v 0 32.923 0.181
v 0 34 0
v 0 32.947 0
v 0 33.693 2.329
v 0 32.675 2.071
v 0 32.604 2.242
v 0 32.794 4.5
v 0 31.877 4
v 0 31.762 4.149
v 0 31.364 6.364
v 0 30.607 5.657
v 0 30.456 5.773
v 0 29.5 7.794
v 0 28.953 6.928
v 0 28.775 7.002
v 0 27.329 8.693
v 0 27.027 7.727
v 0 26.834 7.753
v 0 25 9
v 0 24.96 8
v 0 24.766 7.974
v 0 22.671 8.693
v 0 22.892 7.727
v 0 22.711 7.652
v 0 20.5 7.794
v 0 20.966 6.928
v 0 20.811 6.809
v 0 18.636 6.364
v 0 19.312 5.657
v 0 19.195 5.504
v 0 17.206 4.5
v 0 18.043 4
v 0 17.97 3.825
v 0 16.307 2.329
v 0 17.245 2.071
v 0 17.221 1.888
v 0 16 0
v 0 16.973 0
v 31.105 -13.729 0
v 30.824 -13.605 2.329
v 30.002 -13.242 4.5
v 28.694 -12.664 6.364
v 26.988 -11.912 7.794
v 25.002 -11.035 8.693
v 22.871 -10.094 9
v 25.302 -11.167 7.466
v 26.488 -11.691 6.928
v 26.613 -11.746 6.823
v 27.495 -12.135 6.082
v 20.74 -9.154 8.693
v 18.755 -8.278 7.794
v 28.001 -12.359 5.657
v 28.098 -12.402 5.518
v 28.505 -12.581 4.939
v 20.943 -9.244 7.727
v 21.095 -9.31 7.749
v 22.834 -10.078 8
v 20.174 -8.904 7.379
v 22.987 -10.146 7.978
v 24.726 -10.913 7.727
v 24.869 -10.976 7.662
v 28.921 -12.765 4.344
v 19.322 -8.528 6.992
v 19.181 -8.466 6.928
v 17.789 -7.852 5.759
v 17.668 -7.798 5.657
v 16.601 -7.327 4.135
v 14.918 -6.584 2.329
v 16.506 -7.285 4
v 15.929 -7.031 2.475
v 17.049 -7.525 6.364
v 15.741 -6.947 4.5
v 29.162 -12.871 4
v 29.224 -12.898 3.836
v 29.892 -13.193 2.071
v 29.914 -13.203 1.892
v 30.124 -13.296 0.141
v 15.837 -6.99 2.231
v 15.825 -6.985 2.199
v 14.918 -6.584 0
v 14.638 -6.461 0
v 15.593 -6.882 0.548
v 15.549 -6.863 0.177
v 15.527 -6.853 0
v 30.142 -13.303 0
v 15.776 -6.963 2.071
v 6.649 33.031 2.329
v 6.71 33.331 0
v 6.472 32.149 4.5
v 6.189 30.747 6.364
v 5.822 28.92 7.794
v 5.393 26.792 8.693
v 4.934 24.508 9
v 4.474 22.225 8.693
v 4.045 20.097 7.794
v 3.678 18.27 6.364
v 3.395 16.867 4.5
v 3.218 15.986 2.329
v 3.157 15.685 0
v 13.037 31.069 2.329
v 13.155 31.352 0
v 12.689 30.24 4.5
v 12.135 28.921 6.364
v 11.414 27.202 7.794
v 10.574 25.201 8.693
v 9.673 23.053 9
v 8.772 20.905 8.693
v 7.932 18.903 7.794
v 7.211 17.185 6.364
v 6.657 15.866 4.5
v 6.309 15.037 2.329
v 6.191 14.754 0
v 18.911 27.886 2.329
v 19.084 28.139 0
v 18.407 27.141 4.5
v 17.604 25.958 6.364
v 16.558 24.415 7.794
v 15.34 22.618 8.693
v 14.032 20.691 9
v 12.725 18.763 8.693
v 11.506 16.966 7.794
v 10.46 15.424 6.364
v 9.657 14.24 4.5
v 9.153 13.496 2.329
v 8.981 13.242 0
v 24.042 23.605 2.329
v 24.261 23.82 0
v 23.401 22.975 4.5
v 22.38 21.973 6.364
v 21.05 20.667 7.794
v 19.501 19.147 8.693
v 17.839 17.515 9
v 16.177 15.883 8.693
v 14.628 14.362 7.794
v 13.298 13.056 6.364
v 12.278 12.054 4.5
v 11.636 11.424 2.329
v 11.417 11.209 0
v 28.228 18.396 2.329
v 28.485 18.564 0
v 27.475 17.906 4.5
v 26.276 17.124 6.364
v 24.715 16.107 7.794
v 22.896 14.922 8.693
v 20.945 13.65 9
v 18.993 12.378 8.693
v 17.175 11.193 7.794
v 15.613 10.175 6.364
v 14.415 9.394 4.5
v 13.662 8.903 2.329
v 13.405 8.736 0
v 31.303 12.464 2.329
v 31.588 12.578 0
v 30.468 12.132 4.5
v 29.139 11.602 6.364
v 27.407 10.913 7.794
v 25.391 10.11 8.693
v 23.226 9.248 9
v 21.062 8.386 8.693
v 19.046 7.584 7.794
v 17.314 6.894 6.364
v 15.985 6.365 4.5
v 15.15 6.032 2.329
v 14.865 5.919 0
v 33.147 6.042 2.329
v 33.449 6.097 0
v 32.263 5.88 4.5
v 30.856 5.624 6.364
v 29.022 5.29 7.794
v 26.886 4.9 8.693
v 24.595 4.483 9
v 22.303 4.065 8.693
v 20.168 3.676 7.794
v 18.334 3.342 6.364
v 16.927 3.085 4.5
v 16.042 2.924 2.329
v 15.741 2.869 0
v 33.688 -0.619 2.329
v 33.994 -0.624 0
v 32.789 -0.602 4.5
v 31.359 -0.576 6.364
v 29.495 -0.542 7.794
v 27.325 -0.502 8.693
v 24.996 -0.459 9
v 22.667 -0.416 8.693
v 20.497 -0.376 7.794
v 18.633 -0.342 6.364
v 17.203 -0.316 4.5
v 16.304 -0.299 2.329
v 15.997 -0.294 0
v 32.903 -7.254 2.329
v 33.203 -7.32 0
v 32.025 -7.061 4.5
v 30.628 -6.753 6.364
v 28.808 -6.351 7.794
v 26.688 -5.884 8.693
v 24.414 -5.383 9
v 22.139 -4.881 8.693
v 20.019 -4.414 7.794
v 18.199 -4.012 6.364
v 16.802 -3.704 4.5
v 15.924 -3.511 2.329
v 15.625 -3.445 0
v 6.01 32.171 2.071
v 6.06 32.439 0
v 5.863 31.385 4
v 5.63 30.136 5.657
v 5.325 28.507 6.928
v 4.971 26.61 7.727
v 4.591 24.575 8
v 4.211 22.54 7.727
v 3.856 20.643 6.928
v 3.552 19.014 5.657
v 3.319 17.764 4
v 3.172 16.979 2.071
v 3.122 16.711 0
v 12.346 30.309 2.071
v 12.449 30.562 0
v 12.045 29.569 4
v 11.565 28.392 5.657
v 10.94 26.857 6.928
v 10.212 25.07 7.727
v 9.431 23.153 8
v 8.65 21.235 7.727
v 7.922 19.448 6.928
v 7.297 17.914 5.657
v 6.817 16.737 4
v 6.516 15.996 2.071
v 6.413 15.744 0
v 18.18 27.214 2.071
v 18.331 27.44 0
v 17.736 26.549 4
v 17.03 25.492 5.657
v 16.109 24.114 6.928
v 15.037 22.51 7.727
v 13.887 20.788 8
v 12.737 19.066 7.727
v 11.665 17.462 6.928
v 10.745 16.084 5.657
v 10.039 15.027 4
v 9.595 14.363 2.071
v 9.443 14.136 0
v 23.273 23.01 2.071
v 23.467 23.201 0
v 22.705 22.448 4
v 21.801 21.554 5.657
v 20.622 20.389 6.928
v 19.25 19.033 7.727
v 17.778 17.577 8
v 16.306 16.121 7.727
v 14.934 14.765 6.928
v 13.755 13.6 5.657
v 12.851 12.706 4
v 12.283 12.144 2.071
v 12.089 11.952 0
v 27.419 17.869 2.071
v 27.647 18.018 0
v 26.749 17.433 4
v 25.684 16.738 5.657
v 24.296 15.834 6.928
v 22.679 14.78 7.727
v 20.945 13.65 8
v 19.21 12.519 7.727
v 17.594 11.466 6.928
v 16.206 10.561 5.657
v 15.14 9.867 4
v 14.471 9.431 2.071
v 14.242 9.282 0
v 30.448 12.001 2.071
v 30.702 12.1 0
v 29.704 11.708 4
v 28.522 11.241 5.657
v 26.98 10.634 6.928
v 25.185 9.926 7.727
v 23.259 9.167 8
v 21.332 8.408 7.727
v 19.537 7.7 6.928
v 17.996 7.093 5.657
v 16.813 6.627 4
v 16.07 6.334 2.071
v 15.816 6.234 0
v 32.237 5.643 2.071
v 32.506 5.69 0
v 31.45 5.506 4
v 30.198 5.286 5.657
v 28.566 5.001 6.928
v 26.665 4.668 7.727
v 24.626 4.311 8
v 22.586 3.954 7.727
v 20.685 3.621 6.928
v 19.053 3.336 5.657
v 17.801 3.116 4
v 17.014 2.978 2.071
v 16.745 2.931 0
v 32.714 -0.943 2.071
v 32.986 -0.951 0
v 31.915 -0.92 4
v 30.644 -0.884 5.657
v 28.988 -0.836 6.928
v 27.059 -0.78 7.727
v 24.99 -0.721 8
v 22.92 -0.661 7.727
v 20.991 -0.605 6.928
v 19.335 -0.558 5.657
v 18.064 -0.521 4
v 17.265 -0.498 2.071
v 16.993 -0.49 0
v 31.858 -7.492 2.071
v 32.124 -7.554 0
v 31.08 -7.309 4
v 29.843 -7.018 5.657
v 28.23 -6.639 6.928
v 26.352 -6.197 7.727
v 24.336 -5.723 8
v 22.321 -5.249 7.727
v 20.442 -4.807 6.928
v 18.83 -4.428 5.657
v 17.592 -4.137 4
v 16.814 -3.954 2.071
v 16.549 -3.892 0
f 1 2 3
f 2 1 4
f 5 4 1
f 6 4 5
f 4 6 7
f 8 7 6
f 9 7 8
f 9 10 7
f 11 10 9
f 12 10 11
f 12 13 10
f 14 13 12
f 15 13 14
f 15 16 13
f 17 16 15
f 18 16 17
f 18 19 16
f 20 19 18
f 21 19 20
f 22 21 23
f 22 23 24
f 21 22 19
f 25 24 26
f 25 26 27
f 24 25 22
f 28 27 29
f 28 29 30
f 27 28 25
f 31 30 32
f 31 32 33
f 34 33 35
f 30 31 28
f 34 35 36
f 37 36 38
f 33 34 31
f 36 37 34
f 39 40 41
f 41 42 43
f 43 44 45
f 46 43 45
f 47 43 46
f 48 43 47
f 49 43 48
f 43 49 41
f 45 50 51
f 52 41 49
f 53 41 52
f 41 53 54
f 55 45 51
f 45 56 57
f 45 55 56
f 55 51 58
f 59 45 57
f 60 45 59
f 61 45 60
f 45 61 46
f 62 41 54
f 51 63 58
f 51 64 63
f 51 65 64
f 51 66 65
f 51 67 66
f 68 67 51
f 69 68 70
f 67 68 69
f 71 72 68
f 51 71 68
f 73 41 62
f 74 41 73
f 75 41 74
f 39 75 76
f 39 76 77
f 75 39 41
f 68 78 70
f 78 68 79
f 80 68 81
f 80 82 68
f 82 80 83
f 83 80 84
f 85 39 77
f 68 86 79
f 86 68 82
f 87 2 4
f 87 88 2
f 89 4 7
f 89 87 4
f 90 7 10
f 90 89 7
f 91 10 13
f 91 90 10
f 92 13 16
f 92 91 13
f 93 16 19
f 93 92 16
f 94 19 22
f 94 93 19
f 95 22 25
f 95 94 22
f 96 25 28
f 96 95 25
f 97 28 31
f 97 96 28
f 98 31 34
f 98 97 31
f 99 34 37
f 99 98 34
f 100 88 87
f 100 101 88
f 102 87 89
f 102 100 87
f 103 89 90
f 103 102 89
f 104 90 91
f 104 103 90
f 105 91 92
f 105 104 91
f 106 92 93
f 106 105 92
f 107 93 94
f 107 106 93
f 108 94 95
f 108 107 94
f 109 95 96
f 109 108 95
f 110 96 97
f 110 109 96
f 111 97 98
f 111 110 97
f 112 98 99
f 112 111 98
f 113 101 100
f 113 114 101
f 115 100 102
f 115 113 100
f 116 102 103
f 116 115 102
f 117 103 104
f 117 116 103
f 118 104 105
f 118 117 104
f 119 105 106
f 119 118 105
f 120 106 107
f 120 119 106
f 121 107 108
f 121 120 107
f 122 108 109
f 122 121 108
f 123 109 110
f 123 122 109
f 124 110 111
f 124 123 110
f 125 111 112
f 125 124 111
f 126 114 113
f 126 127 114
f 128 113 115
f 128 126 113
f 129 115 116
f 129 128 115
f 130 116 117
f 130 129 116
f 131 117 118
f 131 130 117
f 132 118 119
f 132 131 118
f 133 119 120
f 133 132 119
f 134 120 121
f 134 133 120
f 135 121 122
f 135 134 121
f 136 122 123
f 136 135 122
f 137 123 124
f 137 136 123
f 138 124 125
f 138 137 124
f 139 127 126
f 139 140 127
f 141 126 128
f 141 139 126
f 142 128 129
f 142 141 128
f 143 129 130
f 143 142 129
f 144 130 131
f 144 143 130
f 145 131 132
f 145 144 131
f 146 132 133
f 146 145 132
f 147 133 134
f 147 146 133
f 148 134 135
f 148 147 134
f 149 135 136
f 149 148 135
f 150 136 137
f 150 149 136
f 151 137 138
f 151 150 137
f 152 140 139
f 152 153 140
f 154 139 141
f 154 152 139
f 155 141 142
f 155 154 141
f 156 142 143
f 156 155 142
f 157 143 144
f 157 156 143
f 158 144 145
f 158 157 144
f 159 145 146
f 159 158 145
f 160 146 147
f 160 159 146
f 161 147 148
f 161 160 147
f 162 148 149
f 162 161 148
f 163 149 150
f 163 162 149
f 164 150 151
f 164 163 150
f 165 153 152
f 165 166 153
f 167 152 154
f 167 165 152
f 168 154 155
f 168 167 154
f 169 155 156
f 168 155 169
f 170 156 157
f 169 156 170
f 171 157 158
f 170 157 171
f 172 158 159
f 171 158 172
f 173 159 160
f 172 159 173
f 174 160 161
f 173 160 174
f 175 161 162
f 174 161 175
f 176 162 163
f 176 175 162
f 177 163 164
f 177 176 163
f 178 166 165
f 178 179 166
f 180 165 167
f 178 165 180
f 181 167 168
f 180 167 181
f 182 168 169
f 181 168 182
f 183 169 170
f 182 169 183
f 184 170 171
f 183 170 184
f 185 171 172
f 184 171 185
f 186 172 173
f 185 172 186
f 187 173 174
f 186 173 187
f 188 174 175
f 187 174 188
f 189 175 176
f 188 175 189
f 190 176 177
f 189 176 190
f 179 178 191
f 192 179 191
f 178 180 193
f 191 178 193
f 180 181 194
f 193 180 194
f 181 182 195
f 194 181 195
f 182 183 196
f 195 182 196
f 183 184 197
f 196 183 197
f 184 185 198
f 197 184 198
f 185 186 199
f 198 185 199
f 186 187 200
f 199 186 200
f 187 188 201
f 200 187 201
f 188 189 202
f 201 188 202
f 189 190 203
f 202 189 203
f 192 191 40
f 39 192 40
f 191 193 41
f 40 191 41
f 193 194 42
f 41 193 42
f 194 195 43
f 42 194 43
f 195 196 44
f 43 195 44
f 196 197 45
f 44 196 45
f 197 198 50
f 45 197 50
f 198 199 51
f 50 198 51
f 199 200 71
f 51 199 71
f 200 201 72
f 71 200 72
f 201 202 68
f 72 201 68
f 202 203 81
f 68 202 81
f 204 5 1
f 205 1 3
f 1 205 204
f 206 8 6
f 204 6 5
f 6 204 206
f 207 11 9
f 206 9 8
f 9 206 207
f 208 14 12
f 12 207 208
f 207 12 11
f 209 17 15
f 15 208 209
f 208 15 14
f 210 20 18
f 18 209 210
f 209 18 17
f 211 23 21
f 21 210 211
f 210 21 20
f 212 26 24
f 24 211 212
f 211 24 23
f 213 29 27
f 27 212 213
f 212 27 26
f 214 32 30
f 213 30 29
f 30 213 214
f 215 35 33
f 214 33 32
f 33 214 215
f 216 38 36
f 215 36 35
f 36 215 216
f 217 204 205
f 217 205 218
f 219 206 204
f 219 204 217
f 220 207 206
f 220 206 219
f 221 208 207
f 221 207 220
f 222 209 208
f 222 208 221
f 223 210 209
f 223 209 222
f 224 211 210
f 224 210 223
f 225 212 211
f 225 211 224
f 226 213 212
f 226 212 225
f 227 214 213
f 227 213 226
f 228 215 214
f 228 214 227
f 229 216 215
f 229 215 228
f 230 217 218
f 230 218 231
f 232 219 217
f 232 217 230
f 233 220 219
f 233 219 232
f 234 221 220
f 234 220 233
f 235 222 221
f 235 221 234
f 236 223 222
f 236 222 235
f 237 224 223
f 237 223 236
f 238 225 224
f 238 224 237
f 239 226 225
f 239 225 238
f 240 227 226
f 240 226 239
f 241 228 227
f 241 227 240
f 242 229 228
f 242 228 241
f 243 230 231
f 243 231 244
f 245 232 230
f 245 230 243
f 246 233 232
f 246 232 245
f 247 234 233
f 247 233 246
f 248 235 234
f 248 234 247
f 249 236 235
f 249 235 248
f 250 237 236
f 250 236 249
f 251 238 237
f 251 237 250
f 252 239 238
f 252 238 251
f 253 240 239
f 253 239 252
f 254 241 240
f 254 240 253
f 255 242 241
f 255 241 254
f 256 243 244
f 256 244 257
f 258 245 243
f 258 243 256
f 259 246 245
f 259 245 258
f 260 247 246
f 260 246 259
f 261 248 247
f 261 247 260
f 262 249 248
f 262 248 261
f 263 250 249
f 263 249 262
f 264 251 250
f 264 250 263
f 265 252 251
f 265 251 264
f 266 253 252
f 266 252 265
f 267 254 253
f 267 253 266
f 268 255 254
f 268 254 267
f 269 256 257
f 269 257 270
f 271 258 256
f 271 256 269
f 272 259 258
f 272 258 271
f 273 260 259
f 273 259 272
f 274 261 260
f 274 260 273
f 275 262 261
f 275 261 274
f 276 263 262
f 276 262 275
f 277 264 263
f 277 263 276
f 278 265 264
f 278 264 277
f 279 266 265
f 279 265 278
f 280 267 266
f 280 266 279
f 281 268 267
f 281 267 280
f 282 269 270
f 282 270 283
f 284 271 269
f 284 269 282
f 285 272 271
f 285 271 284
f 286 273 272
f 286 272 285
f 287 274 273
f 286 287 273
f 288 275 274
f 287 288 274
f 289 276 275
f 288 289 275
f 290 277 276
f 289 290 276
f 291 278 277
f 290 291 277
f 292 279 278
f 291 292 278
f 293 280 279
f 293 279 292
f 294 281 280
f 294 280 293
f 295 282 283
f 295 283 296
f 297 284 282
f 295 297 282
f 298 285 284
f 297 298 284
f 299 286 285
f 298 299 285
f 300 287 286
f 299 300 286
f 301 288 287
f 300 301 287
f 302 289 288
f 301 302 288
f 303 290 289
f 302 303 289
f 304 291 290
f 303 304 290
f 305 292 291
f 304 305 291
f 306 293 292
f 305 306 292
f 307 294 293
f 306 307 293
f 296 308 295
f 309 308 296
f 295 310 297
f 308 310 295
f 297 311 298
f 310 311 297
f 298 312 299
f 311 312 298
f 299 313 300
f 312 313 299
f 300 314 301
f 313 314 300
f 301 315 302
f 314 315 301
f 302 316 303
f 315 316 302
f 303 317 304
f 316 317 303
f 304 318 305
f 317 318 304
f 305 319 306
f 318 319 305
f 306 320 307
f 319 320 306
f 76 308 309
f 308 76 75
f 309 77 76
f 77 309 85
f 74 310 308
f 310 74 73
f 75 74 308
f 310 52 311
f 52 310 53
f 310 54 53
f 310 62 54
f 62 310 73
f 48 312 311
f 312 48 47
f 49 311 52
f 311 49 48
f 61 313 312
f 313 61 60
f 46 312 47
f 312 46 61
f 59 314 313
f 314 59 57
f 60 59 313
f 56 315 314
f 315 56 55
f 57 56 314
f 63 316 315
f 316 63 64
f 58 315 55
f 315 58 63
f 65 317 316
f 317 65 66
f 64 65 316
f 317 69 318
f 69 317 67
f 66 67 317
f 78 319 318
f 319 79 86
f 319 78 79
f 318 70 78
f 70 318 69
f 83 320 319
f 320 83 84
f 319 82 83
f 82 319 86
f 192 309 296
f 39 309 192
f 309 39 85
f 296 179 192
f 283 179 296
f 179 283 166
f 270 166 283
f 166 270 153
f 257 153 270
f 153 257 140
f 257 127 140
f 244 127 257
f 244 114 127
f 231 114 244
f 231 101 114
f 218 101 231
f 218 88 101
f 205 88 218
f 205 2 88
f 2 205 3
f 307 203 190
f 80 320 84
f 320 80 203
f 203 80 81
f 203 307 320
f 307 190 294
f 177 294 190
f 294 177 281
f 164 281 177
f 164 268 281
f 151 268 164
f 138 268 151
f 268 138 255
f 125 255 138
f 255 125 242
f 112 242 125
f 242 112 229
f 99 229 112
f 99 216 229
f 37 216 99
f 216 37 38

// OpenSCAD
// file: ../build_environments.scad
// build_environments.scad: modules to build level sections
//

module pool(diameter=10.0, wall_height=2.0, step_width=3.0, connections=[])
{
    difference() {
        union() {
        difference() {
            cylinder(h=0.5,r1=diameter+step_width,r2=diameter+step_width,$fn=48);
            translate([0,0,-0.1])
                cylinder(h=0.7,r1=diameter,r2=diameter,$fn=48);
        }
        difference() {
            cylinder(h=wall_height,r1=diameter+step_width+1.0,r2=diameter+step_width+1.0,$fn=48);
            translate([0,0,-0.1])
                cylinder(h=wall_height+0.2,r1=diameter+step_width,r2=diameter+step_width,$fn=48);
        }
        }
    
        for (c = connections)
        {
            rotate([0,90,0]) {
                angle = atan2(c[1],c[0]);
                rotate([-angle,0,0]) {
                    cylinder(h=diameter+5.0,r1=c[2],r2=c[2],$fn=48);
                }
            }
        }
    }
}

module straight(length=10.0, width=2.0, dy1=0.0, dy2=0.0, dz=0.0)
{
    dims = [0, 0, 0, 0, 0, (dz/length)];
    matrix = [
        [ 1, dims[0], dims[1], 0 ],
        [ dims[2], 1, dims[4], 0 ],
        [ dims[5], dims[3], 1, 0 ],
        [ 0, 0, 0, 1 ]
    ];
    multmatrix(matrix)
    difference() {
        translate([dy1,0,0])
        union() {
            rotate([0,90,0]) {
                difference() {
                    cylinder(h=(length-dy1-dy2),r1=width+1.0,r2=width+1.0,$fn=24);
                    translate([0,0,-0.1])
                        cylinder(h=(length-dy1-dy2+0.2),r1=width,r2=width,$fn=24);
                }
                difference() {
                    cylinder(h=1.0,r1=width+2.0,r2=width+2.0,$fn=24);
                    translate([0,0,-0.1])
                        cylinder(h=1.2,r1=width,r2=width,$fn=24);
                }
                translate([0,0,(length-dy1-dy2)-1.0]) {
                    difference() {
                        cylinder(h=1.0,r1=width+2.0,r2=width+2.0,$fn=24);
                        translate([0,0,-0.1])
                            cylinder(h=1.2,r1=width,r2=width,$fn=24);
                    }
                }
            }
        }
        translate([0,0,-(2*width+4.0)/2])
            cube([3*length,3*length,2*width+4.0],center=true);
    }
}

module curve(p0=[0,0], center=[0,0], dir=1, angle=0.0, width=2.0)
{
    radius = sqrt((p0[0]-center[0])*(p0[0]-center[0]) + (p0[1]-center[1])*(p0[1]-center[1]));
    if (dir == 0) {
        difference() {
            rotate([0,0,-90])
            difference() {
                rotate_extrude(angle = angle, convexity = 10, $fn=32)
                    translate([radius, 0, 0])
                        circle(r = width+1.0,$fn=24);
                rotate([0,0,-1.0])
                    rotate_extrude(angle = angle+2.0, convexity = 10, $fn=32)
                        translate([radius, 0, 0])
                            circle(r = width,$fn=24);
            }
            translate([0,0,-(2*width+4.0)/2])
                cube([5*radius,5*radius,2*width+4.0],center=true);
        }
    }
    else {
        difference() {
            rotate([0,0,90])
            difference() {
                rotate_extrude(angle = -angle, convexity = 10, $fn=32)
                    translate([radius, 0, 0])
                        circle(r = width+1.0,$fn=24);
                rotate([0,0,1.0])
                    rotate_extrude(angle = -angle-2.0, convexity = 10, $fn=32)
                        translate([radius, 0, 0])
                            circle(r = width,$fn=24);
            }
            translate([0,0,-(2*width+4.0)/2])
                cube([5*radius,5*radius,2*width+4.0],center=true);
        }
    }

}

// test pool
//pool(diameter=12.0000, wall_height=3.0000, step_width=3.0000, connections=[[0.0000,-26.0000,2.0000], [23.6074,0.0000,2.0000]]);

// test straight, slope
//straight(length=26.0000, width=2.0000, dy1=11.8322, dy2=6.7082, dz=0.0000);
//straight(length=29.1549, width=12.0000, dy1=0.0000, dy2=0.0000, dz=-15.0000);

// test curve
//curve(p0=[23.6074, 0.0000], center=[23.6074, 5.0000], dir=0, angle=60.1011, width=2.0000);
//curve(p0=[33.6426, 12.4219], center=[37.9771, 9.9295], dir=1, angle=120.4627, width=2.0000);
// main file
use <../build_environments.scad>;
curve(p0=[21.5063, 83.1685], center=[9.5741, 105.1372], dir=1, angle=113.8148, width=8.0000);
